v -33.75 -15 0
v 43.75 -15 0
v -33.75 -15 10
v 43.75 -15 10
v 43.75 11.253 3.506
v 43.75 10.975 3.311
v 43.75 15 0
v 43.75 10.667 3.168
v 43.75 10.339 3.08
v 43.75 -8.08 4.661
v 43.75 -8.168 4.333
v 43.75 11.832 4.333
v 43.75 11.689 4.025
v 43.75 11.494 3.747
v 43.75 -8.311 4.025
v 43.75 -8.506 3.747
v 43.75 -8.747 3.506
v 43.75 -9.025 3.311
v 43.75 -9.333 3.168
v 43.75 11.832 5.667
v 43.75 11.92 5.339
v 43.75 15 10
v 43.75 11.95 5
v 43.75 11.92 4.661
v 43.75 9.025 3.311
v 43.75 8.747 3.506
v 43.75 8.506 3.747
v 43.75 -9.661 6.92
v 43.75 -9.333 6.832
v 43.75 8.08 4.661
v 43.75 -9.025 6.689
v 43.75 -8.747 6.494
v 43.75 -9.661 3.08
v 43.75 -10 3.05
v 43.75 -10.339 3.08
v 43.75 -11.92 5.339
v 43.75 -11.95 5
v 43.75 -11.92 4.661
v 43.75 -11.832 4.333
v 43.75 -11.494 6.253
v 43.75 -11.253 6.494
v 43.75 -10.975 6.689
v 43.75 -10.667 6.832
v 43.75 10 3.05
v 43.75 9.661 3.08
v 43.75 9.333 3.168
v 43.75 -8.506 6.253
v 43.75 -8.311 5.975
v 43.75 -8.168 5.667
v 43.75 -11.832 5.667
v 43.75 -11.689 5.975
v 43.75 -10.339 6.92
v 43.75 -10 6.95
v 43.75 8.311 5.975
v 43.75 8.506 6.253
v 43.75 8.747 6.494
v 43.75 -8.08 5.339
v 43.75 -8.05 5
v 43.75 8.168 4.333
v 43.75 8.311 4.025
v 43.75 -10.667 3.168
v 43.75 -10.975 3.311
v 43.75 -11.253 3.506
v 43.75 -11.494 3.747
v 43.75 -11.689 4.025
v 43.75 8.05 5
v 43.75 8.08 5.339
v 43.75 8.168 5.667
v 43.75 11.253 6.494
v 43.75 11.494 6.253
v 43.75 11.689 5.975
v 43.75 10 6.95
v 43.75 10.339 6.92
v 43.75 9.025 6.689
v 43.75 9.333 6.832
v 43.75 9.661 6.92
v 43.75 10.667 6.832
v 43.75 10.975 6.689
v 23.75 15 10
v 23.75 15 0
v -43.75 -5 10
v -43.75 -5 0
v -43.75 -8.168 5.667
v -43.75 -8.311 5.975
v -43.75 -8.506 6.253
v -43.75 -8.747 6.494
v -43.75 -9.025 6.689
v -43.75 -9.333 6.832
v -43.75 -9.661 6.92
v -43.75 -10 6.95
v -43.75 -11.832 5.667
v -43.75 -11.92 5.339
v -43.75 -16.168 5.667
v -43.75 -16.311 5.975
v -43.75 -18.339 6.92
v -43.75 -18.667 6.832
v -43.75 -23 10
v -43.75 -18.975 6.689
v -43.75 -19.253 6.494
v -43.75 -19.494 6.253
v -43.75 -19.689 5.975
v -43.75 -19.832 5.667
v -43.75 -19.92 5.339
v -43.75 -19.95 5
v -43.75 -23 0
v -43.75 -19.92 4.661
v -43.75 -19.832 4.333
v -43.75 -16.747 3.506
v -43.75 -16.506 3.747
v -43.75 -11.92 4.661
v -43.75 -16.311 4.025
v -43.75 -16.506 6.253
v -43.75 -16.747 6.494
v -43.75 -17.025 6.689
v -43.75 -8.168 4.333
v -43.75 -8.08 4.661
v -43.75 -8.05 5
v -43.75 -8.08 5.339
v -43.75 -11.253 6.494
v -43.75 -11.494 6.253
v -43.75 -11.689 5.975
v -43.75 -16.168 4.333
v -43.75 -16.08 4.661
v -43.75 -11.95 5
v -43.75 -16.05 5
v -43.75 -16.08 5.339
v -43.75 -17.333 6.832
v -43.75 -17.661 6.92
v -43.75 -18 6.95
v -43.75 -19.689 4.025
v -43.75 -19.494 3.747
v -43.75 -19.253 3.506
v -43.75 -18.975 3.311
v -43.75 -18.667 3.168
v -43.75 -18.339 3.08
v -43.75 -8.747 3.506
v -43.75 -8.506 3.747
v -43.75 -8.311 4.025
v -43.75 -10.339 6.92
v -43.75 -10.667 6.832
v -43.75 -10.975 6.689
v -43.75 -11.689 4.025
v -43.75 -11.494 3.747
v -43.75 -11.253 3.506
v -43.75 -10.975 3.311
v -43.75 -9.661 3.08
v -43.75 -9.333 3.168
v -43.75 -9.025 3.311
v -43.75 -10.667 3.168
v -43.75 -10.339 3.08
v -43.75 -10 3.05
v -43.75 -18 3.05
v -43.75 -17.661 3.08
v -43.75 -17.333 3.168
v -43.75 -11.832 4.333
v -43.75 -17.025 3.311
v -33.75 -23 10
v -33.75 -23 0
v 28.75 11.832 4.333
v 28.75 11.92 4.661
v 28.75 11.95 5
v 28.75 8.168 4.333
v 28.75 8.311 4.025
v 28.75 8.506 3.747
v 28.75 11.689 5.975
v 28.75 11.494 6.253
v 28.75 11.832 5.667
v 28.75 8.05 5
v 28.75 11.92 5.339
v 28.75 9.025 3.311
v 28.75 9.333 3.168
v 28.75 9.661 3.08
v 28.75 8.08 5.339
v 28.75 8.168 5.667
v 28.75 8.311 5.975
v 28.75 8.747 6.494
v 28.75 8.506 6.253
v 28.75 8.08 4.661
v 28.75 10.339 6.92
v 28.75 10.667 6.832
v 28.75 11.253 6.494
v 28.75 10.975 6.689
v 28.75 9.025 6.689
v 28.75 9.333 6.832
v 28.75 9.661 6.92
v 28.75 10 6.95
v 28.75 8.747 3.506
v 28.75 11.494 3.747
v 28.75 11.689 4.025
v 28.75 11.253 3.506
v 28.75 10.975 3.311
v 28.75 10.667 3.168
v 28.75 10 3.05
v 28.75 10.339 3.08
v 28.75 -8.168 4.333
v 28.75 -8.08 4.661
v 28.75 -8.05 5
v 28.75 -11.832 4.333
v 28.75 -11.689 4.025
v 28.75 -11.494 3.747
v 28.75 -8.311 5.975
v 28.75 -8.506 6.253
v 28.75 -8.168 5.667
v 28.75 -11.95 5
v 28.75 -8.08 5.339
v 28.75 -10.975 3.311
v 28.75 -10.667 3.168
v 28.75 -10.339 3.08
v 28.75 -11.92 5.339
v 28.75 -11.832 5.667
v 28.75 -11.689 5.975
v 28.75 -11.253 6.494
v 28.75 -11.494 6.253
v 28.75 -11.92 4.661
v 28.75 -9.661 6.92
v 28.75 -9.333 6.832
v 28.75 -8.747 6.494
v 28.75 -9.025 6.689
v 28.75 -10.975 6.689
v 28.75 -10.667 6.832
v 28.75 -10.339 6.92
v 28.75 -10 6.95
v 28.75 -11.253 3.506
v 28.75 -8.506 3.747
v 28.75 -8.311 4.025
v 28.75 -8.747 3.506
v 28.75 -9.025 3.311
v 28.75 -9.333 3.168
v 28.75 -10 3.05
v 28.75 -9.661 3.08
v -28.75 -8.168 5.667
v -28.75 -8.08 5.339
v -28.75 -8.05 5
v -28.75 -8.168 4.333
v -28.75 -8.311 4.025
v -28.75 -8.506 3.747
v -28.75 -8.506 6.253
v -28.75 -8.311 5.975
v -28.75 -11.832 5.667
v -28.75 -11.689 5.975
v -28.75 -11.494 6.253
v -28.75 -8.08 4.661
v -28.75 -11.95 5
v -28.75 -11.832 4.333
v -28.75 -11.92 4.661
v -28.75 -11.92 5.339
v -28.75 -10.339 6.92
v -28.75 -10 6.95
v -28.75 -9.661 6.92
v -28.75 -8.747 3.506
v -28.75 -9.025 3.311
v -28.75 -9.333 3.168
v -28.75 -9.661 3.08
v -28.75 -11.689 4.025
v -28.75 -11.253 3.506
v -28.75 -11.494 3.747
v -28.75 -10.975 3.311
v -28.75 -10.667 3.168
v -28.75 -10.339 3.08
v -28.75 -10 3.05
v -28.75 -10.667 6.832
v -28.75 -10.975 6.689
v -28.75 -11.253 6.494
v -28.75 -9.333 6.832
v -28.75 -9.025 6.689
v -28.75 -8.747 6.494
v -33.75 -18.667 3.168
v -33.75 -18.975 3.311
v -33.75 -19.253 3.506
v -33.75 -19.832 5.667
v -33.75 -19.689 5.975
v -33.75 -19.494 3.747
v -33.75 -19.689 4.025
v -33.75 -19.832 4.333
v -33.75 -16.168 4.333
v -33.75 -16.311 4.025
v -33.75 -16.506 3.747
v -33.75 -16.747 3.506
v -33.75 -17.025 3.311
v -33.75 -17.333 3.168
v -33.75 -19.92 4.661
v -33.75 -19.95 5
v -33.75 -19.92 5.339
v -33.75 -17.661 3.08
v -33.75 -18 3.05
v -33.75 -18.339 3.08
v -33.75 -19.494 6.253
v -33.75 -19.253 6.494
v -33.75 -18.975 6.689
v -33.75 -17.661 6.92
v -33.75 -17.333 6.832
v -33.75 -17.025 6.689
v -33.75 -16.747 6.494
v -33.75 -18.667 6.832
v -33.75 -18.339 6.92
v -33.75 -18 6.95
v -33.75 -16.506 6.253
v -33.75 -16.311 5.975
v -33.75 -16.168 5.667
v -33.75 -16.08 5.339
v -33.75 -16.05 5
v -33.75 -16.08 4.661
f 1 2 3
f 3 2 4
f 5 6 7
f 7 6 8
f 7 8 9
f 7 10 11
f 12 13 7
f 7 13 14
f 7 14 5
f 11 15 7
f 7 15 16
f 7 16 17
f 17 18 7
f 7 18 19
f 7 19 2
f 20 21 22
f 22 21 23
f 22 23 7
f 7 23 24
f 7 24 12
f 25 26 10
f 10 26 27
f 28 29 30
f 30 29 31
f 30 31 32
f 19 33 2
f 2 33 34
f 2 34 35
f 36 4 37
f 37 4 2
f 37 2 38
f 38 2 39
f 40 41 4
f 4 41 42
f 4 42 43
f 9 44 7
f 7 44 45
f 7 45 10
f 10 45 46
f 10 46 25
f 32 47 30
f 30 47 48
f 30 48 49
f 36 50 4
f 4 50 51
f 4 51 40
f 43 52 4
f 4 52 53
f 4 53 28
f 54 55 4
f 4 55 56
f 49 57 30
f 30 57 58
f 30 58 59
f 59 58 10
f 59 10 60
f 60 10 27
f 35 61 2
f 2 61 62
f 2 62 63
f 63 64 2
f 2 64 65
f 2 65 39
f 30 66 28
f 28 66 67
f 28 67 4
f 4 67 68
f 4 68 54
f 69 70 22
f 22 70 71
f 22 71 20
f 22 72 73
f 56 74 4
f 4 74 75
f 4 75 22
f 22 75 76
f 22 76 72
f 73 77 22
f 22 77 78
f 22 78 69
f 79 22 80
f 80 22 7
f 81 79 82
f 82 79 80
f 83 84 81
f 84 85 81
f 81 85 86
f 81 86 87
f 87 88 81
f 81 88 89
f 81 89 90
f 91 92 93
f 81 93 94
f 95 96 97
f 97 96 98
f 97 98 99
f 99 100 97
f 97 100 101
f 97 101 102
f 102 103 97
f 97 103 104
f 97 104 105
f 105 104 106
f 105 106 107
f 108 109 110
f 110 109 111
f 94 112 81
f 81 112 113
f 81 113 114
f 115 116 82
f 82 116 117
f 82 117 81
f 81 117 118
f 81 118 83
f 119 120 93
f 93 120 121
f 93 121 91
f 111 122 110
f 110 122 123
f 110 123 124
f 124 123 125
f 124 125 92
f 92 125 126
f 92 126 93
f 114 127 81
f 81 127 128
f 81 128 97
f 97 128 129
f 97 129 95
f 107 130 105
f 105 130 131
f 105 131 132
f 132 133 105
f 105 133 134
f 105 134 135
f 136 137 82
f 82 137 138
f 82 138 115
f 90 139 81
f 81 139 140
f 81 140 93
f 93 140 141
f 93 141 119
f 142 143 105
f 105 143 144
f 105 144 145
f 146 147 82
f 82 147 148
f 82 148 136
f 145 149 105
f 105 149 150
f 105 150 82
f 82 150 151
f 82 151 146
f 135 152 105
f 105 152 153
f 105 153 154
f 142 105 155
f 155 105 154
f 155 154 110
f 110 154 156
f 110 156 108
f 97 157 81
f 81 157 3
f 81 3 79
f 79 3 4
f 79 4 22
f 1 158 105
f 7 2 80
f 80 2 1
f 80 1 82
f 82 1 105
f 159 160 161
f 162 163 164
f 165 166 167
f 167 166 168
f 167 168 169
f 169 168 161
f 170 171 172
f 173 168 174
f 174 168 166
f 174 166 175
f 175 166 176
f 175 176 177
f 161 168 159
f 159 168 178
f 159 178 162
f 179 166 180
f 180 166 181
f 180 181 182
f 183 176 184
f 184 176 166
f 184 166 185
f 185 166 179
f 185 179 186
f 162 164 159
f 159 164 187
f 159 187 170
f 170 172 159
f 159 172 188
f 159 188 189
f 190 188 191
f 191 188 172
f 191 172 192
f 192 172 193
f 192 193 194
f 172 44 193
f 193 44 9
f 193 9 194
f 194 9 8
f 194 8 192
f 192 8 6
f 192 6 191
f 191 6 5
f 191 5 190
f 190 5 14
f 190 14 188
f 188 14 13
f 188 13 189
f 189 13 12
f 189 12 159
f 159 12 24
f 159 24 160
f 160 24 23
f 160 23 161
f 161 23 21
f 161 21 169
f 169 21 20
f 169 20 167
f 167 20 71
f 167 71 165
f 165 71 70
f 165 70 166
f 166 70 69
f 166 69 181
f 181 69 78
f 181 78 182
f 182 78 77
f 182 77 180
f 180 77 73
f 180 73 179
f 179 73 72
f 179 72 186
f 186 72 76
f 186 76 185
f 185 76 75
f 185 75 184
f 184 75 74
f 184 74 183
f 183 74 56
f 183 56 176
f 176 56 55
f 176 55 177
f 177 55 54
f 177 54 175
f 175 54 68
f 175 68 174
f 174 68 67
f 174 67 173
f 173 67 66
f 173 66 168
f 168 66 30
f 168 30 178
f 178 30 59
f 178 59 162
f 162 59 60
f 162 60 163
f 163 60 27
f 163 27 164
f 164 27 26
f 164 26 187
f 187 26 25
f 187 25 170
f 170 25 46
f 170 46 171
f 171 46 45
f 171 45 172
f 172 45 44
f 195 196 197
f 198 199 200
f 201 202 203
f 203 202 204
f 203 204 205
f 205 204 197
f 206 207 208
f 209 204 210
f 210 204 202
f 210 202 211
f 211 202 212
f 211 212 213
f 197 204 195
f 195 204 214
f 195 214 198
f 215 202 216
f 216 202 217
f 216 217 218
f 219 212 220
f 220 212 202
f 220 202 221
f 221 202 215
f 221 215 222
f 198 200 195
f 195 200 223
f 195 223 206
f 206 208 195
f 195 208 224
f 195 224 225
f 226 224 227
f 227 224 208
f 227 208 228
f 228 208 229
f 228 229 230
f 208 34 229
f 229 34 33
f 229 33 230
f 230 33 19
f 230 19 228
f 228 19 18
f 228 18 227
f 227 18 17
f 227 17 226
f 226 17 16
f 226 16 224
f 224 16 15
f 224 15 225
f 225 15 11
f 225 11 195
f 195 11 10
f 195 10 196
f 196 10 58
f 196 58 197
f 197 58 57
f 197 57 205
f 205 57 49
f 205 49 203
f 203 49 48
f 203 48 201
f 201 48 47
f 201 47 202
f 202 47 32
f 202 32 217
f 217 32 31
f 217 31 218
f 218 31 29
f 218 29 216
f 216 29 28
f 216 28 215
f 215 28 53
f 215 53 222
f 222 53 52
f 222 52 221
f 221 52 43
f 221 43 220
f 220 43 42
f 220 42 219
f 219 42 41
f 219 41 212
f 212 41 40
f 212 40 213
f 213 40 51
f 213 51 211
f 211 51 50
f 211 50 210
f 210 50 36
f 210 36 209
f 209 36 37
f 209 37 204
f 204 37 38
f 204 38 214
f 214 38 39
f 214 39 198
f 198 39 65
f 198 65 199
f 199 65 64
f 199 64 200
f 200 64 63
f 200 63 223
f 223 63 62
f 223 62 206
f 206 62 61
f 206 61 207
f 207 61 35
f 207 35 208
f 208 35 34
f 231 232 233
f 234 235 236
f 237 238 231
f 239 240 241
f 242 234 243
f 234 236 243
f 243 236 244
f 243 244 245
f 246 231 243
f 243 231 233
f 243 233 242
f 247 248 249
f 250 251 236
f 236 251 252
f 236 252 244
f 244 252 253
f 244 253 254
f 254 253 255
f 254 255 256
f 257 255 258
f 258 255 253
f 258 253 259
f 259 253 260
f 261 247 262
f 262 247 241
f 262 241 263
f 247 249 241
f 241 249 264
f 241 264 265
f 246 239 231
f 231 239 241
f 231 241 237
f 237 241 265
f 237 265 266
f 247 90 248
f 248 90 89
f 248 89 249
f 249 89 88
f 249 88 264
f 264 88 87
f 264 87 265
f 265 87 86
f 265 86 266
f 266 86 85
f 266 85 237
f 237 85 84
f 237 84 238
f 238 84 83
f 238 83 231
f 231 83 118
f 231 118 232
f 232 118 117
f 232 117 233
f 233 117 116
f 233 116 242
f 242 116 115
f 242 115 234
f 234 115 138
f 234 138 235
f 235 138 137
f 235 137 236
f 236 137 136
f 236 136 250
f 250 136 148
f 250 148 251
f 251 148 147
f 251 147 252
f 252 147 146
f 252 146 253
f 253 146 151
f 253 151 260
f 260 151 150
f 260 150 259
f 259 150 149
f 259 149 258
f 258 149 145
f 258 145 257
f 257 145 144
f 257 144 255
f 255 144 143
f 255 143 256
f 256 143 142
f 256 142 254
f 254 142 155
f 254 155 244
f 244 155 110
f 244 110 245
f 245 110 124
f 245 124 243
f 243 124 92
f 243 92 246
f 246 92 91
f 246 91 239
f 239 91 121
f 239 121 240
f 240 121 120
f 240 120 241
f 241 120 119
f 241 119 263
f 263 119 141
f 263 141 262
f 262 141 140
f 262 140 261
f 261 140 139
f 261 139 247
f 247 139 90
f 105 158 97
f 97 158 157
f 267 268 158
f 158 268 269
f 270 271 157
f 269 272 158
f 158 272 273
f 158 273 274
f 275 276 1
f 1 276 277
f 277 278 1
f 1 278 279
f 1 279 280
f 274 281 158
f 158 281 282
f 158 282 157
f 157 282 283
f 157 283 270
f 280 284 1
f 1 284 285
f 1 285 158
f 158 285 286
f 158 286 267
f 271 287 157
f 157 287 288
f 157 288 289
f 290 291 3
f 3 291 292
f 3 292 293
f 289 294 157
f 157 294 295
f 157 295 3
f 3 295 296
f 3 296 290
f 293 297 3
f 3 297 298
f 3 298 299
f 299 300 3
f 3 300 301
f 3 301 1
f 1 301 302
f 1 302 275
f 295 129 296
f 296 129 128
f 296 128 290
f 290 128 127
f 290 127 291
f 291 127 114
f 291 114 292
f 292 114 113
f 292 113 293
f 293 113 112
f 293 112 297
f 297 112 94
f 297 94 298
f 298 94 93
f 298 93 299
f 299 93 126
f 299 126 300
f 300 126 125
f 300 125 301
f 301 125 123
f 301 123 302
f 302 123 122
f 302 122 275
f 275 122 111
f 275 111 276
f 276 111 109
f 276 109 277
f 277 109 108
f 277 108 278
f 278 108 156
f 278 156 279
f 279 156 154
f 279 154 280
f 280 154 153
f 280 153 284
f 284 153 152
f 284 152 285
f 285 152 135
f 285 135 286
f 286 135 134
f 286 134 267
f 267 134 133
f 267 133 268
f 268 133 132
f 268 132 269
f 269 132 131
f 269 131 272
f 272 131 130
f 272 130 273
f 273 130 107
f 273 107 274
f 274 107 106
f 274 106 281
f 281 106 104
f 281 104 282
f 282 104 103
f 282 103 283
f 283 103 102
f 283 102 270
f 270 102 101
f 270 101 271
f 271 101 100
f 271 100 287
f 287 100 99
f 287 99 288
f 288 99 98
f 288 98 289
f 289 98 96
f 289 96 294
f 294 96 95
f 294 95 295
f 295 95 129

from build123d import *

# Parameters (mm, degrees)
EXTRUDE1_DEPTH                         = 10
F_4_0_4_DIAMETER_HOLE1_D               = 3.9
F_4_0_4_DIAMETER_HOLE1_DEPTH           = 15
F_4_0_4_DIAMETER_HOLE1_ON_FACE_2_D     = 3.9
F_4_0_4_DIAMETER_HOLE1_ON_FACE_2_DEPTH = 15
SKETCH3_W                              = 10
SKETCH3_H                              = 8
EXTRUDE2_DEPTH                         = 10
F_4_0_4_DIAMETER_HOLE2_D               = 3.9
F_4_0_4_DIAMETER_HOLE2_DEPTH           = 15


with BuildPart() as part:
    # Sketch1 → Extrude1 (new body)
    with BuildSketch(Plane.XY):
        Polygon((-43.75, -15), (-43.75, -5), (23.75, 15), (43.75, 15), (43.75, -15), align=None)
    extrude(amount=EXTRUDE1_DEPTH)

    # Ø4.0 (4) Diameter Hole1
    with Locations(Plane(origin=(-43.75, -10, 5), x_dir=(0, 0, -1), z_dir=(-1, 0, 0))):
        with Locations((0, 0)):
            Hole(F_4_0_4_DIAMETER_HOLE1_D / 2, depth=F_4_0_4_DIAMETER_HOLE1_DEPTH)

    # Ø4.0 (4) Diameter Hole1 on face 2
    with Locations(Plane(origin=(43.75, -10, 5), x_dir=(0, 0, 1), z_dir=(1, 0, 0))):
        with Locations((0, 0), (0, -20)):
            Hole(F_4_0_4_DIAMETER_HOLE1_ON_FACE_2_D / 2, depth=F_4_0_4_DIAMETER_HOLE1_ON_FACE_2_DEPTH)

    # Sketch3 → Extrude2 (add)
    with BuildSketch(Plane.XY):
        with Locations((-38.75, -19)):
            Rectangle(SKETCH3_W, SKETCH3_H)
    extrude(amount=EXTRUDE2_DEPTH)

    # Ø4.0 (4) Diameter Hole2
    with Locations(Plane(origin=(-43.75, -18, 5), x_dir=(0, 0, -1), z_dir=(-1, 0, 0))):
        with Locations((0, 0)):
            Hole(F_4_0_4_DIAMETER_HOLE2_D / 2, depth=F_4_0_4_DIAMETER_HOLE2_DEPTH)


solid = part.part
